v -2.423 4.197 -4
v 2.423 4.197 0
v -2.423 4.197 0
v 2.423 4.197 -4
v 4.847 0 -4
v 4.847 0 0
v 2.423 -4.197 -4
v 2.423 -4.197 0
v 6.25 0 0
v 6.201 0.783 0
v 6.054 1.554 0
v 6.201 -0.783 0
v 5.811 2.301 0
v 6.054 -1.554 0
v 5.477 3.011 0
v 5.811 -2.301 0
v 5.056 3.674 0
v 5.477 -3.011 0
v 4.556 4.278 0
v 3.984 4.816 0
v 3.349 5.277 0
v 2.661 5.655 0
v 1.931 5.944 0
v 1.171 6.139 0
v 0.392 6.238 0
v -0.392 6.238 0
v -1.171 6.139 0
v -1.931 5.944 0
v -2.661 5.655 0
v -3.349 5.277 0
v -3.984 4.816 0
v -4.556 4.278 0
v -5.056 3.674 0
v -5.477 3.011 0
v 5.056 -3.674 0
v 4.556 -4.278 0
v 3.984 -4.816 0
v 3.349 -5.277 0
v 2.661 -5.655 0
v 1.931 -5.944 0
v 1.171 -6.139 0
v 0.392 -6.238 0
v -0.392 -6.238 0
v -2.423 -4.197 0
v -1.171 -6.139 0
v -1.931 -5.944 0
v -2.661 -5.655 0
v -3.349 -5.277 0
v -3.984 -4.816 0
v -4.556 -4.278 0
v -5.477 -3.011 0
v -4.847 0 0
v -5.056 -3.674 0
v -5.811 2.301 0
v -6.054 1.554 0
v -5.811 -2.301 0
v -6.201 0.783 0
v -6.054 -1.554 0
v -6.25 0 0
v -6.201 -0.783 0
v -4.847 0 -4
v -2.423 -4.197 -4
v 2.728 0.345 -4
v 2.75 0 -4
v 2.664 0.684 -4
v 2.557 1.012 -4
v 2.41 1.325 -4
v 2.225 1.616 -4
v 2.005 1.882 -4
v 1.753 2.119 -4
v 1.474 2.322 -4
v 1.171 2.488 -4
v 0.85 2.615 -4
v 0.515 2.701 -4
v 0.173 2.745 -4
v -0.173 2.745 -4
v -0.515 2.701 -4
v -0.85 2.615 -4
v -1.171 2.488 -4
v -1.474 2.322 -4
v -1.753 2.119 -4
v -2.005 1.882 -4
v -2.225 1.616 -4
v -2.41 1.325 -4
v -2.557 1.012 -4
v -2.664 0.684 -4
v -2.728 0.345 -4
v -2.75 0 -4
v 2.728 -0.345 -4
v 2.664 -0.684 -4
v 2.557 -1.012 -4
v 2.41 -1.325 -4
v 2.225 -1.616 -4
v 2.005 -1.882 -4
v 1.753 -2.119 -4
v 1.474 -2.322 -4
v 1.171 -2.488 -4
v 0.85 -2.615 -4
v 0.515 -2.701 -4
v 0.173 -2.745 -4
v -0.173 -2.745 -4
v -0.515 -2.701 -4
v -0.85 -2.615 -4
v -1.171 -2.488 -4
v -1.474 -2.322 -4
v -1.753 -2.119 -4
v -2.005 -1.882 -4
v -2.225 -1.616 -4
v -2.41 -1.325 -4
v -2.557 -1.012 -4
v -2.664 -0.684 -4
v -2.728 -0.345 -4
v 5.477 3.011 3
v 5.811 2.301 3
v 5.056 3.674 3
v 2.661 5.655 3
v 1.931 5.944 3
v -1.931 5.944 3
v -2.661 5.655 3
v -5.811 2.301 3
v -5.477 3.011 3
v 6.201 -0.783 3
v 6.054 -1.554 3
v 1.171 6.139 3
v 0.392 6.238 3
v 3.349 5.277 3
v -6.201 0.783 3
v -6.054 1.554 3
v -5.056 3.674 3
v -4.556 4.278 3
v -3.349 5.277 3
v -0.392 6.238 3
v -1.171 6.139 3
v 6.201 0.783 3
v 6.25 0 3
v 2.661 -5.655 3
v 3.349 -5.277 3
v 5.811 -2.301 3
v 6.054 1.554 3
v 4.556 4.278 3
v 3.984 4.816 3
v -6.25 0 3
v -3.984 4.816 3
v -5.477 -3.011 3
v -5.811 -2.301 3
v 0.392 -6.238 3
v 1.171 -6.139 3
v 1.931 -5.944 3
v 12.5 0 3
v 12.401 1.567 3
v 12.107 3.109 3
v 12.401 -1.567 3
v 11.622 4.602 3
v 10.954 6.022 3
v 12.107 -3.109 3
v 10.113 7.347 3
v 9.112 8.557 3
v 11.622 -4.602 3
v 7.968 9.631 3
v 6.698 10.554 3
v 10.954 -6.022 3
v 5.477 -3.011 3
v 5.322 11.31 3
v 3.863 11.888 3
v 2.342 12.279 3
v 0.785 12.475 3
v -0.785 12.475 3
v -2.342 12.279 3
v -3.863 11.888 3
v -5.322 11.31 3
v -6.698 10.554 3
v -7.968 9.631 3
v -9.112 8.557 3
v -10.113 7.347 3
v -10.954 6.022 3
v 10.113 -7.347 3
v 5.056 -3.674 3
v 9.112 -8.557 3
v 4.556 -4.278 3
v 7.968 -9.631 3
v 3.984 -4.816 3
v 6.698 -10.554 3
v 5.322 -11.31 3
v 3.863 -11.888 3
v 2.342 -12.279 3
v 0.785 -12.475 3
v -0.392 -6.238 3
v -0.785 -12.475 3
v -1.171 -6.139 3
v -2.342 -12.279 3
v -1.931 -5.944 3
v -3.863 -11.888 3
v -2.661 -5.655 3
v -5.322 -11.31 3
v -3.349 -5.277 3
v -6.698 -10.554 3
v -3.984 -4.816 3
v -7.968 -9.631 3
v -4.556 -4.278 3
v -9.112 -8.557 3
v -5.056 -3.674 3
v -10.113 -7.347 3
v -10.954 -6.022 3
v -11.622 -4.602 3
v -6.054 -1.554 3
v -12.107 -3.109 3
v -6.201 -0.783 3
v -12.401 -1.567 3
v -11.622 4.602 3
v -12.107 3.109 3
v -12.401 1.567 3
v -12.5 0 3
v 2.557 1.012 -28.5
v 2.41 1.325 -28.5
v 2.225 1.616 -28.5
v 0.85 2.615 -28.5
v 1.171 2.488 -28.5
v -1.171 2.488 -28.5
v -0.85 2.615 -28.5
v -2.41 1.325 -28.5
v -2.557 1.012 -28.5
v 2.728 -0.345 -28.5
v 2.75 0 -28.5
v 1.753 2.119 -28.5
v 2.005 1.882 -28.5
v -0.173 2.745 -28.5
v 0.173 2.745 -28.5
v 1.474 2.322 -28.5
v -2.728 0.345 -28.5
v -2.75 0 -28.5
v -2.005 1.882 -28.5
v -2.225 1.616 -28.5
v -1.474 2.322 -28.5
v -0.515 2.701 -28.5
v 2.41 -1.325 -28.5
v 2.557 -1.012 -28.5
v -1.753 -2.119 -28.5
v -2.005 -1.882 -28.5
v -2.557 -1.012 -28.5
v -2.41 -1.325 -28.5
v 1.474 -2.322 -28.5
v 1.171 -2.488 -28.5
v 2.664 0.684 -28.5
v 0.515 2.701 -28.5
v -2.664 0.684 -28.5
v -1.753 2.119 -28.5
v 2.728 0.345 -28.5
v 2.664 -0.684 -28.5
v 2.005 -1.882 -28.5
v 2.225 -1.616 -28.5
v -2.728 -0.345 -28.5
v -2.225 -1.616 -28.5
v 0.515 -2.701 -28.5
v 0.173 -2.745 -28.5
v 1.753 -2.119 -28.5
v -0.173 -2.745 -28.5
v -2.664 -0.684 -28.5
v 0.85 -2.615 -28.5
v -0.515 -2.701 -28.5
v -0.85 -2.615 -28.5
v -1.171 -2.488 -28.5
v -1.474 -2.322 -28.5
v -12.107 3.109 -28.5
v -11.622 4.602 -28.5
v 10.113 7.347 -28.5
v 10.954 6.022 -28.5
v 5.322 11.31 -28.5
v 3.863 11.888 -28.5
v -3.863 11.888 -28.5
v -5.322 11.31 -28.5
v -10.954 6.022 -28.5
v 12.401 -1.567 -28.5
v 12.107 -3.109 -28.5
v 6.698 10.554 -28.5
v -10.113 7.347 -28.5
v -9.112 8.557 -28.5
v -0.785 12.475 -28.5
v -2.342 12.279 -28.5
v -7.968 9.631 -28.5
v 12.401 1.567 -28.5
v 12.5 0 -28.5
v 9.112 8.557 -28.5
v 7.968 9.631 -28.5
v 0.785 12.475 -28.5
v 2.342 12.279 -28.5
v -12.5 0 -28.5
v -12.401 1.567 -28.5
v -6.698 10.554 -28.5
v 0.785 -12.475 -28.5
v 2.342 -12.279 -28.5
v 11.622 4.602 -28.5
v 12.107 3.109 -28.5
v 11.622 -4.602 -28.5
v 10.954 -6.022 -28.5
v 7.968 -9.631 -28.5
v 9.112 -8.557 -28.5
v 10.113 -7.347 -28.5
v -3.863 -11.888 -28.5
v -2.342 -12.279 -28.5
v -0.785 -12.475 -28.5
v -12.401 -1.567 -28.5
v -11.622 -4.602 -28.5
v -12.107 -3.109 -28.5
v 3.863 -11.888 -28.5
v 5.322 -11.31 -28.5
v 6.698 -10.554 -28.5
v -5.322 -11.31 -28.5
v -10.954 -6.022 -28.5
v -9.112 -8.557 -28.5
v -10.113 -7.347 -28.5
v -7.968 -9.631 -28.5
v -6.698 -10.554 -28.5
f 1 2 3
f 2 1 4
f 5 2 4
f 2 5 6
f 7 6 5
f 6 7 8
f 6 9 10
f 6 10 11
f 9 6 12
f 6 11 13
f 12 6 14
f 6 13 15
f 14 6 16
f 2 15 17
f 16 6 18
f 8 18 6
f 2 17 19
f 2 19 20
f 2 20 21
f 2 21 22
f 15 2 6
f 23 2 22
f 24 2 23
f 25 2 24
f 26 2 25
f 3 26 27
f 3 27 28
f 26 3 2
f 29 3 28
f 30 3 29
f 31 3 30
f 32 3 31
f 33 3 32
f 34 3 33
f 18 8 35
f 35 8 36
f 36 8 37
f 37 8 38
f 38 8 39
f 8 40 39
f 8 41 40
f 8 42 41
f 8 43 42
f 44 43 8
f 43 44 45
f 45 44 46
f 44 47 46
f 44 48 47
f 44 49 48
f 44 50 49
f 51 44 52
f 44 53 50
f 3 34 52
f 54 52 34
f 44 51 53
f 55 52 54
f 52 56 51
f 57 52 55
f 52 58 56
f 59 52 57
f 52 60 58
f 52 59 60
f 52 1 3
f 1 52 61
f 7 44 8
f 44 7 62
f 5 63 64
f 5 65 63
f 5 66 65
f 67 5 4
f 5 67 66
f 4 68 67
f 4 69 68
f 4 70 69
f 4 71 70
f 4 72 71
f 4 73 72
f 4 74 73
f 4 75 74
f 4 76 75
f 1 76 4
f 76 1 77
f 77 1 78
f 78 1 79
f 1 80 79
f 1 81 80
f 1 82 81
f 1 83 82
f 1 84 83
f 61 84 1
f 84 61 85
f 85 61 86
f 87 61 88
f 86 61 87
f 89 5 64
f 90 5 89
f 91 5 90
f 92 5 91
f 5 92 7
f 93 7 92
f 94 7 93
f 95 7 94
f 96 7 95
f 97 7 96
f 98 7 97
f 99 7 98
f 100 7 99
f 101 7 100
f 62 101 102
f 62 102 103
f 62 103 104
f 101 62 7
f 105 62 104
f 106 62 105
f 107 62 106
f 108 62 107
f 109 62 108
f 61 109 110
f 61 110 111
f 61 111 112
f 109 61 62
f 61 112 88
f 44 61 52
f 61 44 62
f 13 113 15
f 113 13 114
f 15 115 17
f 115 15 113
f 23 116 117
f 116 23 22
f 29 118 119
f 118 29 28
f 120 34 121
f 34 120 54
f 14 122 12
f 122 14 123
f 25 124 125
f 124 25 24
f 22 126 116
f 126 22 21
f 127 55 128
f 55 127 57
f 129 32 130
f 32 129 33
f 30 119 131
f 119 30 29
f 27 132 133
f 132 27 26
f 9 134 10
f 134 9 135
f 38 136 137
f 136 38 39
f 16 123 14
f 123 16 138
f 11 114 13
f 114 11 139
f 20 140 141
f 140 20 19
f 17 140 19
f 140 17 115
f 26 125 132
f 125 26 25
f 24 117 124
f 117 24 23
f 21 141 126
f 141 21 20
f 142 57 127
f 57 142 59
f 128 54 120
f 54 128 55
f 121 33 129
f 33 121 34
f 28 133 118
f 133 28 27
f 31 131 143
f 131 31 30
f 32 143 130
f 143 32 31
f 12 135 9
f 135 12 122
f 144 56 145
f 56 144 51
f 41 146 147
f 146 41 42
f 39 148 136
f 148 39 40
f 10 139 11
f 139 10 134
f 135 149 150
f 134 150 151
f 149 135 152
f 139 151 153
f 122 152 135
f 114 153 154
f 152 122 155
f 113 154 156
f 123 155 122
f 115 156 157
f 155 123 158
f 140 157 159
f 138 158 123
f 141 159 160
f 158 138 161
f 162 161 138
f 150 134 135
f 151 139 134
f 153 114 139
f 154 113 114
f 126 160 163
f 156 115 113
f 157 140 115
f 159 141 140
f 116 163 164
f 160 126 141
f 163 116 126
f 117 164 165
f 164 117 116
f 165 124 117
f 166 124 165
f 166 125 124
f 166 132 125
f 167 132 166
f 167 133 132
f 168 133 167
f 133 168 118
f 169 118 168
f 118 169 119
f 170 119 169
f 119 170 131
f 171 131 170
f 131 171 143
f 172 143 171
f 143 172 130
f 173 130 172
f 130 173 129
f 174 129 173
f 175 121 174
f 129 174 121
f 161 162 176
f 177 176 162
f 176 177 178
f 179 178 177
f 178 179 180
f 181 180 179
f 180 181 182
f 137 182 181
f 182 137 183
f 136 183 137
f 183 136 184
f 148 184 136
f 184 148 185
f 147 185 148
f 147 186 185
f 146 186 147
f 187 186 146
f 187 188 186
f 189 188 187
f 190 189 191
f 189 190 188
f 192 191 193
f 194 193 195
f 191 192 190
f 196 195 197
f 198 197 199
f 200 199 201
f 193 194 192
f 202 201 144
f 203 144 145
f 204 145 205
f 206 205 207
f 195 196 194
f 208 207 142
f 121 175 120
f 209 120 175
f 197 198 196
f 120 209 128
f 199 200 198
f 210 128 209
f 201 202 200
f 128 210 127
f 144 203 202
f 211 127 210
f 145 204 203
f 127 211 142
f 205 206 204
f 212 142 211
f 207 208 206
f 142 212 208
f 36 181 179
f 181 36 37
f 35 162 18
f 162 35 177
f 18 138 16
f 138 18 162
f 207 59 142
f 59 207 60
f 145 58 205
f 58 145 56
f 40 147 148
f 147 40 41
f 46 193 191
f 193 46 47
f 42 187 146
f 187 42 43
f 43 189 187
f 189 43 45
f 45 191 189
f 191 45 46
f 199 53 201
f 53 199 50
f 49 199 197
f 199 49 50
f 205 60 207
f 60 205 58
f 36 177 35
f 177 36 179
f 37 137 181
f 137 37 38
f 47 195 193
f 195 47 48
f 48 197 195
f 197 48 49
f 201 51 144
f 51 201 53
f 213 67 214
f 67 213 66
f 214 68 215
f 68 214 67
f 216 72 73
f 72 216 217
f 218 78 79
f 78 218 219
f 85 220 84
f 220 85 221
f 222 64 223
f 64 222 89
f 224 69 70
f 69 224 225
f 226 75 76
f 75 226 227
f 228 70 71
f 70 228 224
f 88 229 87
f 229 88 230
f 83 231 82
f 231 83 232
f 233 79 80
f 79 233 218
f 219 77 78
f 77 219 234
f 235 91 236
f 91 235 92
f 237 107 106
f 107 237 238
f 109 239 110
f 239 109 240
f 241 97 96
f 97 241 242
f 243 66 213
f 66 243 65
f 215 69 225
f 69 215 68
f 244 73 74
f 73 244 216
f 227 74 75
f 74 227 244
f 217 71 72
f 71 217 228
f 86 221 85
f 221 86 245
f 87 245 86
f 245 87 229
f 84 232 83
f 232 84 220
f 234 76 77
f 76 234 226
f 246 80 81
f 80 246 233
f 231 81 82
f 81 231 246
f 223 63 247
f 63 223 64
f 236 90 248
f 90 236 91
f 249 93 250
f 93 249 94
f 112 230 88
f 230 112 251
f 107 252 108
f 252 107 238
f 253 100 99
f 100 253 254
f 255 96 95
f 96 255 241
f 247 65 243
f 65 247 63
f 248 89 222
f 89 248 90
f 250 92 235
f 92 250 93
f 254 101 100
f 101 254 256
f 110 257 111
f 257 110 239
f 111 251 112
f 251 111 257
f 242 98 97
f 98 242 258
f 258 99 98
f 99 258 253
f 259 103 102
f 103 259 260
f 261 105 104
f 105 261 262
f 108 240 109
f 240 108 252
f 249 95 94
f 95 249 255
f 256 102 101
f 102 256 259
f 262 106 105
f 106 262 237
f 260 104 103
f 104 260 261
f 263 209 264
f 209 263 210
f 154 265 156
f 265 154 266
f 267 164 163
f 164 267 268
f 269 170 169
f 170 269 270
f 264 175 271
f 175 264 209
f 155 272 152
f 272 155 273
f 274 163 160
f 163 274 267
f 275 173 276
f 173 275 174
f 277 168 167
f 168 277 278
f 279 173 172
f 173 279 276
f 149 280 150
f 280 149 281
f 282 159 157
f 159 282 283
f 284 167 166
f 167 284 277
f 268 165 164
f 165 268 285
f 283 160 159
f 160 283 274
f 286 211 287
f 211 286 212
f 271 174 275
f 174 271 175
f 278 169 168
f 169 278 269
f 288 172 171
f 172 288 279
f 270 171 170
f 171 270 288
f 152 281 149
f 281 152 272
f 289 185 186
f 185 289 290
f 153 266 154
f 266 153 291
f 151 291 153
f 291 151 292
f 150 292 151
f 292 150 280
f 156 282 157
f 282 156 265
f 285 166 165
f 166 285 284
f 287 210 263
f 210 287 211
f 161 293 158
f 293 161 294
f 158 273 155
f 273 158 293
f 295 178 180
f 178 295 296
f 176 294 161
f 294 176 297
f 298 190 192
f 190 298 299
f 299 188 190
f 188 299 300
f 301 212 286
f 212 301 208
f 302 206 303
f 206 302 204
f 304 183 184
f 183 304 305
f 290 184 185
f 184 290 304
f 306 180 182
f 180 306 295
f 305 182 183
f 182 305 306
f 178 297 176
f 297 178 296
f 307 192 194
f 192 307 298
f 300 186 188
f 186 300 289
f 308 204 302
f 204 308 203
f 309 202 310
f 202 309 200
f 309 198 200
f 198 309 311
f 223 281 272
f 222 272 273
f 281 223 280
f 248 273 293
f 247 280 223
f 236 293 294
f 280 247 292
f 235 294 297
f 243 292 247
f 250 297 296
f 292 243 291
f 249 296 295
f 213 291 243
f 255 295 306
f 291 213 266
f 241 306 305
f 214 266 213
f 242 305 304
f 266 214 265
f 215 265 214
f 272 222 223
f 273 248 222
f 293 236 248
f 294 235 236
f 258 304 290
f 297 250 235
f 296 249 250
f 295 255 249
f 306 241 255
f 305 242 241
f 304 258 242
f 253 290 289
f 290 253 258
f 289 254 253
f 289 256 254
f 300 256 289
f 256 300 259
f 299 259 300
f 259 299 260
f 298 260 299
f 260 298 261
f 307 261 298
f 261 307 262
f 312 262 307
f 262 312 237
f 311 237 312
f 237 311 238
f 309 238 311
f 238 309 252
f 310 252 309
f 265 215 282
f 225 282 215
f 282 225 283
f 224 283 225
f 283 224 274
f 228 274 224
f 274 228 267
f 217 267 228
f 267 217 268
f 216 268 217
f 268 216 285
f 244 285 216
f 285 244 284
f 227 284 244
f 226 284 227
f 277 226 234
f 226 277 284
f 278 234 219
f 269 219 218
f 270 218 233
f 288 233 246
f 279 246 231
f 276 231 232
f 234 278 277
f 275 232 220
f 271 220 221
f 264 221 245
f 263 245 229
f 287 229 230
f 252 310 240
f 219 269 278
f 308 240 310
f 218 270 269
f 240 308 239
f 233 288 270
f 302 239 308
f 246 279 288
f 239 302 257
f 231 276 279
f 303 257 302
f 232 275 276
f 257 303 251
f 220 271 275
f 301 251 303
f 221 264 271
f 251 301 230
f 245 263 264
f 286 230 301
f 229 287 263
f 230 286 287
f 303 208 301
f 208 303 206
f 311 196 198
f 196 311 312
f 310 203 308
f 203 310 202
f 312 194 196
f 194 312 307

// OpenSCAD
$fn = 50;

difference() {
	union() {
		translate(v = [0, 0, -28.5]) {
			cylinder(h = 31.5, r = 12.5);
		}
	}
	union() {
		translate(v = [0, 0, 0]) {
			rotate(a = [0, 0, 0]) {
				difference() {
					union() {
						translate(v = [0, 0, -4]) {
							linear_extrude(height = 4) {
								polygon(points = [[4.8468, 0.0], [2.4234000000000004, 4.197451927062417], [-2.423399999999999, 4.197451927062417], [-4.8468, 5.935618106107392e-16], [-2.423400000000002, -4.197451927062416], [2.423399999999997, -4.197451927062419]]);
							}
						}
					}
					union();
				}
			}
		}
		#cylinder(h = 3, r = 6.25);
		#translate(v = [0, 0, -100.0]) {
			cylinder(h = 200, r = 2.75);
		}
	}
}
